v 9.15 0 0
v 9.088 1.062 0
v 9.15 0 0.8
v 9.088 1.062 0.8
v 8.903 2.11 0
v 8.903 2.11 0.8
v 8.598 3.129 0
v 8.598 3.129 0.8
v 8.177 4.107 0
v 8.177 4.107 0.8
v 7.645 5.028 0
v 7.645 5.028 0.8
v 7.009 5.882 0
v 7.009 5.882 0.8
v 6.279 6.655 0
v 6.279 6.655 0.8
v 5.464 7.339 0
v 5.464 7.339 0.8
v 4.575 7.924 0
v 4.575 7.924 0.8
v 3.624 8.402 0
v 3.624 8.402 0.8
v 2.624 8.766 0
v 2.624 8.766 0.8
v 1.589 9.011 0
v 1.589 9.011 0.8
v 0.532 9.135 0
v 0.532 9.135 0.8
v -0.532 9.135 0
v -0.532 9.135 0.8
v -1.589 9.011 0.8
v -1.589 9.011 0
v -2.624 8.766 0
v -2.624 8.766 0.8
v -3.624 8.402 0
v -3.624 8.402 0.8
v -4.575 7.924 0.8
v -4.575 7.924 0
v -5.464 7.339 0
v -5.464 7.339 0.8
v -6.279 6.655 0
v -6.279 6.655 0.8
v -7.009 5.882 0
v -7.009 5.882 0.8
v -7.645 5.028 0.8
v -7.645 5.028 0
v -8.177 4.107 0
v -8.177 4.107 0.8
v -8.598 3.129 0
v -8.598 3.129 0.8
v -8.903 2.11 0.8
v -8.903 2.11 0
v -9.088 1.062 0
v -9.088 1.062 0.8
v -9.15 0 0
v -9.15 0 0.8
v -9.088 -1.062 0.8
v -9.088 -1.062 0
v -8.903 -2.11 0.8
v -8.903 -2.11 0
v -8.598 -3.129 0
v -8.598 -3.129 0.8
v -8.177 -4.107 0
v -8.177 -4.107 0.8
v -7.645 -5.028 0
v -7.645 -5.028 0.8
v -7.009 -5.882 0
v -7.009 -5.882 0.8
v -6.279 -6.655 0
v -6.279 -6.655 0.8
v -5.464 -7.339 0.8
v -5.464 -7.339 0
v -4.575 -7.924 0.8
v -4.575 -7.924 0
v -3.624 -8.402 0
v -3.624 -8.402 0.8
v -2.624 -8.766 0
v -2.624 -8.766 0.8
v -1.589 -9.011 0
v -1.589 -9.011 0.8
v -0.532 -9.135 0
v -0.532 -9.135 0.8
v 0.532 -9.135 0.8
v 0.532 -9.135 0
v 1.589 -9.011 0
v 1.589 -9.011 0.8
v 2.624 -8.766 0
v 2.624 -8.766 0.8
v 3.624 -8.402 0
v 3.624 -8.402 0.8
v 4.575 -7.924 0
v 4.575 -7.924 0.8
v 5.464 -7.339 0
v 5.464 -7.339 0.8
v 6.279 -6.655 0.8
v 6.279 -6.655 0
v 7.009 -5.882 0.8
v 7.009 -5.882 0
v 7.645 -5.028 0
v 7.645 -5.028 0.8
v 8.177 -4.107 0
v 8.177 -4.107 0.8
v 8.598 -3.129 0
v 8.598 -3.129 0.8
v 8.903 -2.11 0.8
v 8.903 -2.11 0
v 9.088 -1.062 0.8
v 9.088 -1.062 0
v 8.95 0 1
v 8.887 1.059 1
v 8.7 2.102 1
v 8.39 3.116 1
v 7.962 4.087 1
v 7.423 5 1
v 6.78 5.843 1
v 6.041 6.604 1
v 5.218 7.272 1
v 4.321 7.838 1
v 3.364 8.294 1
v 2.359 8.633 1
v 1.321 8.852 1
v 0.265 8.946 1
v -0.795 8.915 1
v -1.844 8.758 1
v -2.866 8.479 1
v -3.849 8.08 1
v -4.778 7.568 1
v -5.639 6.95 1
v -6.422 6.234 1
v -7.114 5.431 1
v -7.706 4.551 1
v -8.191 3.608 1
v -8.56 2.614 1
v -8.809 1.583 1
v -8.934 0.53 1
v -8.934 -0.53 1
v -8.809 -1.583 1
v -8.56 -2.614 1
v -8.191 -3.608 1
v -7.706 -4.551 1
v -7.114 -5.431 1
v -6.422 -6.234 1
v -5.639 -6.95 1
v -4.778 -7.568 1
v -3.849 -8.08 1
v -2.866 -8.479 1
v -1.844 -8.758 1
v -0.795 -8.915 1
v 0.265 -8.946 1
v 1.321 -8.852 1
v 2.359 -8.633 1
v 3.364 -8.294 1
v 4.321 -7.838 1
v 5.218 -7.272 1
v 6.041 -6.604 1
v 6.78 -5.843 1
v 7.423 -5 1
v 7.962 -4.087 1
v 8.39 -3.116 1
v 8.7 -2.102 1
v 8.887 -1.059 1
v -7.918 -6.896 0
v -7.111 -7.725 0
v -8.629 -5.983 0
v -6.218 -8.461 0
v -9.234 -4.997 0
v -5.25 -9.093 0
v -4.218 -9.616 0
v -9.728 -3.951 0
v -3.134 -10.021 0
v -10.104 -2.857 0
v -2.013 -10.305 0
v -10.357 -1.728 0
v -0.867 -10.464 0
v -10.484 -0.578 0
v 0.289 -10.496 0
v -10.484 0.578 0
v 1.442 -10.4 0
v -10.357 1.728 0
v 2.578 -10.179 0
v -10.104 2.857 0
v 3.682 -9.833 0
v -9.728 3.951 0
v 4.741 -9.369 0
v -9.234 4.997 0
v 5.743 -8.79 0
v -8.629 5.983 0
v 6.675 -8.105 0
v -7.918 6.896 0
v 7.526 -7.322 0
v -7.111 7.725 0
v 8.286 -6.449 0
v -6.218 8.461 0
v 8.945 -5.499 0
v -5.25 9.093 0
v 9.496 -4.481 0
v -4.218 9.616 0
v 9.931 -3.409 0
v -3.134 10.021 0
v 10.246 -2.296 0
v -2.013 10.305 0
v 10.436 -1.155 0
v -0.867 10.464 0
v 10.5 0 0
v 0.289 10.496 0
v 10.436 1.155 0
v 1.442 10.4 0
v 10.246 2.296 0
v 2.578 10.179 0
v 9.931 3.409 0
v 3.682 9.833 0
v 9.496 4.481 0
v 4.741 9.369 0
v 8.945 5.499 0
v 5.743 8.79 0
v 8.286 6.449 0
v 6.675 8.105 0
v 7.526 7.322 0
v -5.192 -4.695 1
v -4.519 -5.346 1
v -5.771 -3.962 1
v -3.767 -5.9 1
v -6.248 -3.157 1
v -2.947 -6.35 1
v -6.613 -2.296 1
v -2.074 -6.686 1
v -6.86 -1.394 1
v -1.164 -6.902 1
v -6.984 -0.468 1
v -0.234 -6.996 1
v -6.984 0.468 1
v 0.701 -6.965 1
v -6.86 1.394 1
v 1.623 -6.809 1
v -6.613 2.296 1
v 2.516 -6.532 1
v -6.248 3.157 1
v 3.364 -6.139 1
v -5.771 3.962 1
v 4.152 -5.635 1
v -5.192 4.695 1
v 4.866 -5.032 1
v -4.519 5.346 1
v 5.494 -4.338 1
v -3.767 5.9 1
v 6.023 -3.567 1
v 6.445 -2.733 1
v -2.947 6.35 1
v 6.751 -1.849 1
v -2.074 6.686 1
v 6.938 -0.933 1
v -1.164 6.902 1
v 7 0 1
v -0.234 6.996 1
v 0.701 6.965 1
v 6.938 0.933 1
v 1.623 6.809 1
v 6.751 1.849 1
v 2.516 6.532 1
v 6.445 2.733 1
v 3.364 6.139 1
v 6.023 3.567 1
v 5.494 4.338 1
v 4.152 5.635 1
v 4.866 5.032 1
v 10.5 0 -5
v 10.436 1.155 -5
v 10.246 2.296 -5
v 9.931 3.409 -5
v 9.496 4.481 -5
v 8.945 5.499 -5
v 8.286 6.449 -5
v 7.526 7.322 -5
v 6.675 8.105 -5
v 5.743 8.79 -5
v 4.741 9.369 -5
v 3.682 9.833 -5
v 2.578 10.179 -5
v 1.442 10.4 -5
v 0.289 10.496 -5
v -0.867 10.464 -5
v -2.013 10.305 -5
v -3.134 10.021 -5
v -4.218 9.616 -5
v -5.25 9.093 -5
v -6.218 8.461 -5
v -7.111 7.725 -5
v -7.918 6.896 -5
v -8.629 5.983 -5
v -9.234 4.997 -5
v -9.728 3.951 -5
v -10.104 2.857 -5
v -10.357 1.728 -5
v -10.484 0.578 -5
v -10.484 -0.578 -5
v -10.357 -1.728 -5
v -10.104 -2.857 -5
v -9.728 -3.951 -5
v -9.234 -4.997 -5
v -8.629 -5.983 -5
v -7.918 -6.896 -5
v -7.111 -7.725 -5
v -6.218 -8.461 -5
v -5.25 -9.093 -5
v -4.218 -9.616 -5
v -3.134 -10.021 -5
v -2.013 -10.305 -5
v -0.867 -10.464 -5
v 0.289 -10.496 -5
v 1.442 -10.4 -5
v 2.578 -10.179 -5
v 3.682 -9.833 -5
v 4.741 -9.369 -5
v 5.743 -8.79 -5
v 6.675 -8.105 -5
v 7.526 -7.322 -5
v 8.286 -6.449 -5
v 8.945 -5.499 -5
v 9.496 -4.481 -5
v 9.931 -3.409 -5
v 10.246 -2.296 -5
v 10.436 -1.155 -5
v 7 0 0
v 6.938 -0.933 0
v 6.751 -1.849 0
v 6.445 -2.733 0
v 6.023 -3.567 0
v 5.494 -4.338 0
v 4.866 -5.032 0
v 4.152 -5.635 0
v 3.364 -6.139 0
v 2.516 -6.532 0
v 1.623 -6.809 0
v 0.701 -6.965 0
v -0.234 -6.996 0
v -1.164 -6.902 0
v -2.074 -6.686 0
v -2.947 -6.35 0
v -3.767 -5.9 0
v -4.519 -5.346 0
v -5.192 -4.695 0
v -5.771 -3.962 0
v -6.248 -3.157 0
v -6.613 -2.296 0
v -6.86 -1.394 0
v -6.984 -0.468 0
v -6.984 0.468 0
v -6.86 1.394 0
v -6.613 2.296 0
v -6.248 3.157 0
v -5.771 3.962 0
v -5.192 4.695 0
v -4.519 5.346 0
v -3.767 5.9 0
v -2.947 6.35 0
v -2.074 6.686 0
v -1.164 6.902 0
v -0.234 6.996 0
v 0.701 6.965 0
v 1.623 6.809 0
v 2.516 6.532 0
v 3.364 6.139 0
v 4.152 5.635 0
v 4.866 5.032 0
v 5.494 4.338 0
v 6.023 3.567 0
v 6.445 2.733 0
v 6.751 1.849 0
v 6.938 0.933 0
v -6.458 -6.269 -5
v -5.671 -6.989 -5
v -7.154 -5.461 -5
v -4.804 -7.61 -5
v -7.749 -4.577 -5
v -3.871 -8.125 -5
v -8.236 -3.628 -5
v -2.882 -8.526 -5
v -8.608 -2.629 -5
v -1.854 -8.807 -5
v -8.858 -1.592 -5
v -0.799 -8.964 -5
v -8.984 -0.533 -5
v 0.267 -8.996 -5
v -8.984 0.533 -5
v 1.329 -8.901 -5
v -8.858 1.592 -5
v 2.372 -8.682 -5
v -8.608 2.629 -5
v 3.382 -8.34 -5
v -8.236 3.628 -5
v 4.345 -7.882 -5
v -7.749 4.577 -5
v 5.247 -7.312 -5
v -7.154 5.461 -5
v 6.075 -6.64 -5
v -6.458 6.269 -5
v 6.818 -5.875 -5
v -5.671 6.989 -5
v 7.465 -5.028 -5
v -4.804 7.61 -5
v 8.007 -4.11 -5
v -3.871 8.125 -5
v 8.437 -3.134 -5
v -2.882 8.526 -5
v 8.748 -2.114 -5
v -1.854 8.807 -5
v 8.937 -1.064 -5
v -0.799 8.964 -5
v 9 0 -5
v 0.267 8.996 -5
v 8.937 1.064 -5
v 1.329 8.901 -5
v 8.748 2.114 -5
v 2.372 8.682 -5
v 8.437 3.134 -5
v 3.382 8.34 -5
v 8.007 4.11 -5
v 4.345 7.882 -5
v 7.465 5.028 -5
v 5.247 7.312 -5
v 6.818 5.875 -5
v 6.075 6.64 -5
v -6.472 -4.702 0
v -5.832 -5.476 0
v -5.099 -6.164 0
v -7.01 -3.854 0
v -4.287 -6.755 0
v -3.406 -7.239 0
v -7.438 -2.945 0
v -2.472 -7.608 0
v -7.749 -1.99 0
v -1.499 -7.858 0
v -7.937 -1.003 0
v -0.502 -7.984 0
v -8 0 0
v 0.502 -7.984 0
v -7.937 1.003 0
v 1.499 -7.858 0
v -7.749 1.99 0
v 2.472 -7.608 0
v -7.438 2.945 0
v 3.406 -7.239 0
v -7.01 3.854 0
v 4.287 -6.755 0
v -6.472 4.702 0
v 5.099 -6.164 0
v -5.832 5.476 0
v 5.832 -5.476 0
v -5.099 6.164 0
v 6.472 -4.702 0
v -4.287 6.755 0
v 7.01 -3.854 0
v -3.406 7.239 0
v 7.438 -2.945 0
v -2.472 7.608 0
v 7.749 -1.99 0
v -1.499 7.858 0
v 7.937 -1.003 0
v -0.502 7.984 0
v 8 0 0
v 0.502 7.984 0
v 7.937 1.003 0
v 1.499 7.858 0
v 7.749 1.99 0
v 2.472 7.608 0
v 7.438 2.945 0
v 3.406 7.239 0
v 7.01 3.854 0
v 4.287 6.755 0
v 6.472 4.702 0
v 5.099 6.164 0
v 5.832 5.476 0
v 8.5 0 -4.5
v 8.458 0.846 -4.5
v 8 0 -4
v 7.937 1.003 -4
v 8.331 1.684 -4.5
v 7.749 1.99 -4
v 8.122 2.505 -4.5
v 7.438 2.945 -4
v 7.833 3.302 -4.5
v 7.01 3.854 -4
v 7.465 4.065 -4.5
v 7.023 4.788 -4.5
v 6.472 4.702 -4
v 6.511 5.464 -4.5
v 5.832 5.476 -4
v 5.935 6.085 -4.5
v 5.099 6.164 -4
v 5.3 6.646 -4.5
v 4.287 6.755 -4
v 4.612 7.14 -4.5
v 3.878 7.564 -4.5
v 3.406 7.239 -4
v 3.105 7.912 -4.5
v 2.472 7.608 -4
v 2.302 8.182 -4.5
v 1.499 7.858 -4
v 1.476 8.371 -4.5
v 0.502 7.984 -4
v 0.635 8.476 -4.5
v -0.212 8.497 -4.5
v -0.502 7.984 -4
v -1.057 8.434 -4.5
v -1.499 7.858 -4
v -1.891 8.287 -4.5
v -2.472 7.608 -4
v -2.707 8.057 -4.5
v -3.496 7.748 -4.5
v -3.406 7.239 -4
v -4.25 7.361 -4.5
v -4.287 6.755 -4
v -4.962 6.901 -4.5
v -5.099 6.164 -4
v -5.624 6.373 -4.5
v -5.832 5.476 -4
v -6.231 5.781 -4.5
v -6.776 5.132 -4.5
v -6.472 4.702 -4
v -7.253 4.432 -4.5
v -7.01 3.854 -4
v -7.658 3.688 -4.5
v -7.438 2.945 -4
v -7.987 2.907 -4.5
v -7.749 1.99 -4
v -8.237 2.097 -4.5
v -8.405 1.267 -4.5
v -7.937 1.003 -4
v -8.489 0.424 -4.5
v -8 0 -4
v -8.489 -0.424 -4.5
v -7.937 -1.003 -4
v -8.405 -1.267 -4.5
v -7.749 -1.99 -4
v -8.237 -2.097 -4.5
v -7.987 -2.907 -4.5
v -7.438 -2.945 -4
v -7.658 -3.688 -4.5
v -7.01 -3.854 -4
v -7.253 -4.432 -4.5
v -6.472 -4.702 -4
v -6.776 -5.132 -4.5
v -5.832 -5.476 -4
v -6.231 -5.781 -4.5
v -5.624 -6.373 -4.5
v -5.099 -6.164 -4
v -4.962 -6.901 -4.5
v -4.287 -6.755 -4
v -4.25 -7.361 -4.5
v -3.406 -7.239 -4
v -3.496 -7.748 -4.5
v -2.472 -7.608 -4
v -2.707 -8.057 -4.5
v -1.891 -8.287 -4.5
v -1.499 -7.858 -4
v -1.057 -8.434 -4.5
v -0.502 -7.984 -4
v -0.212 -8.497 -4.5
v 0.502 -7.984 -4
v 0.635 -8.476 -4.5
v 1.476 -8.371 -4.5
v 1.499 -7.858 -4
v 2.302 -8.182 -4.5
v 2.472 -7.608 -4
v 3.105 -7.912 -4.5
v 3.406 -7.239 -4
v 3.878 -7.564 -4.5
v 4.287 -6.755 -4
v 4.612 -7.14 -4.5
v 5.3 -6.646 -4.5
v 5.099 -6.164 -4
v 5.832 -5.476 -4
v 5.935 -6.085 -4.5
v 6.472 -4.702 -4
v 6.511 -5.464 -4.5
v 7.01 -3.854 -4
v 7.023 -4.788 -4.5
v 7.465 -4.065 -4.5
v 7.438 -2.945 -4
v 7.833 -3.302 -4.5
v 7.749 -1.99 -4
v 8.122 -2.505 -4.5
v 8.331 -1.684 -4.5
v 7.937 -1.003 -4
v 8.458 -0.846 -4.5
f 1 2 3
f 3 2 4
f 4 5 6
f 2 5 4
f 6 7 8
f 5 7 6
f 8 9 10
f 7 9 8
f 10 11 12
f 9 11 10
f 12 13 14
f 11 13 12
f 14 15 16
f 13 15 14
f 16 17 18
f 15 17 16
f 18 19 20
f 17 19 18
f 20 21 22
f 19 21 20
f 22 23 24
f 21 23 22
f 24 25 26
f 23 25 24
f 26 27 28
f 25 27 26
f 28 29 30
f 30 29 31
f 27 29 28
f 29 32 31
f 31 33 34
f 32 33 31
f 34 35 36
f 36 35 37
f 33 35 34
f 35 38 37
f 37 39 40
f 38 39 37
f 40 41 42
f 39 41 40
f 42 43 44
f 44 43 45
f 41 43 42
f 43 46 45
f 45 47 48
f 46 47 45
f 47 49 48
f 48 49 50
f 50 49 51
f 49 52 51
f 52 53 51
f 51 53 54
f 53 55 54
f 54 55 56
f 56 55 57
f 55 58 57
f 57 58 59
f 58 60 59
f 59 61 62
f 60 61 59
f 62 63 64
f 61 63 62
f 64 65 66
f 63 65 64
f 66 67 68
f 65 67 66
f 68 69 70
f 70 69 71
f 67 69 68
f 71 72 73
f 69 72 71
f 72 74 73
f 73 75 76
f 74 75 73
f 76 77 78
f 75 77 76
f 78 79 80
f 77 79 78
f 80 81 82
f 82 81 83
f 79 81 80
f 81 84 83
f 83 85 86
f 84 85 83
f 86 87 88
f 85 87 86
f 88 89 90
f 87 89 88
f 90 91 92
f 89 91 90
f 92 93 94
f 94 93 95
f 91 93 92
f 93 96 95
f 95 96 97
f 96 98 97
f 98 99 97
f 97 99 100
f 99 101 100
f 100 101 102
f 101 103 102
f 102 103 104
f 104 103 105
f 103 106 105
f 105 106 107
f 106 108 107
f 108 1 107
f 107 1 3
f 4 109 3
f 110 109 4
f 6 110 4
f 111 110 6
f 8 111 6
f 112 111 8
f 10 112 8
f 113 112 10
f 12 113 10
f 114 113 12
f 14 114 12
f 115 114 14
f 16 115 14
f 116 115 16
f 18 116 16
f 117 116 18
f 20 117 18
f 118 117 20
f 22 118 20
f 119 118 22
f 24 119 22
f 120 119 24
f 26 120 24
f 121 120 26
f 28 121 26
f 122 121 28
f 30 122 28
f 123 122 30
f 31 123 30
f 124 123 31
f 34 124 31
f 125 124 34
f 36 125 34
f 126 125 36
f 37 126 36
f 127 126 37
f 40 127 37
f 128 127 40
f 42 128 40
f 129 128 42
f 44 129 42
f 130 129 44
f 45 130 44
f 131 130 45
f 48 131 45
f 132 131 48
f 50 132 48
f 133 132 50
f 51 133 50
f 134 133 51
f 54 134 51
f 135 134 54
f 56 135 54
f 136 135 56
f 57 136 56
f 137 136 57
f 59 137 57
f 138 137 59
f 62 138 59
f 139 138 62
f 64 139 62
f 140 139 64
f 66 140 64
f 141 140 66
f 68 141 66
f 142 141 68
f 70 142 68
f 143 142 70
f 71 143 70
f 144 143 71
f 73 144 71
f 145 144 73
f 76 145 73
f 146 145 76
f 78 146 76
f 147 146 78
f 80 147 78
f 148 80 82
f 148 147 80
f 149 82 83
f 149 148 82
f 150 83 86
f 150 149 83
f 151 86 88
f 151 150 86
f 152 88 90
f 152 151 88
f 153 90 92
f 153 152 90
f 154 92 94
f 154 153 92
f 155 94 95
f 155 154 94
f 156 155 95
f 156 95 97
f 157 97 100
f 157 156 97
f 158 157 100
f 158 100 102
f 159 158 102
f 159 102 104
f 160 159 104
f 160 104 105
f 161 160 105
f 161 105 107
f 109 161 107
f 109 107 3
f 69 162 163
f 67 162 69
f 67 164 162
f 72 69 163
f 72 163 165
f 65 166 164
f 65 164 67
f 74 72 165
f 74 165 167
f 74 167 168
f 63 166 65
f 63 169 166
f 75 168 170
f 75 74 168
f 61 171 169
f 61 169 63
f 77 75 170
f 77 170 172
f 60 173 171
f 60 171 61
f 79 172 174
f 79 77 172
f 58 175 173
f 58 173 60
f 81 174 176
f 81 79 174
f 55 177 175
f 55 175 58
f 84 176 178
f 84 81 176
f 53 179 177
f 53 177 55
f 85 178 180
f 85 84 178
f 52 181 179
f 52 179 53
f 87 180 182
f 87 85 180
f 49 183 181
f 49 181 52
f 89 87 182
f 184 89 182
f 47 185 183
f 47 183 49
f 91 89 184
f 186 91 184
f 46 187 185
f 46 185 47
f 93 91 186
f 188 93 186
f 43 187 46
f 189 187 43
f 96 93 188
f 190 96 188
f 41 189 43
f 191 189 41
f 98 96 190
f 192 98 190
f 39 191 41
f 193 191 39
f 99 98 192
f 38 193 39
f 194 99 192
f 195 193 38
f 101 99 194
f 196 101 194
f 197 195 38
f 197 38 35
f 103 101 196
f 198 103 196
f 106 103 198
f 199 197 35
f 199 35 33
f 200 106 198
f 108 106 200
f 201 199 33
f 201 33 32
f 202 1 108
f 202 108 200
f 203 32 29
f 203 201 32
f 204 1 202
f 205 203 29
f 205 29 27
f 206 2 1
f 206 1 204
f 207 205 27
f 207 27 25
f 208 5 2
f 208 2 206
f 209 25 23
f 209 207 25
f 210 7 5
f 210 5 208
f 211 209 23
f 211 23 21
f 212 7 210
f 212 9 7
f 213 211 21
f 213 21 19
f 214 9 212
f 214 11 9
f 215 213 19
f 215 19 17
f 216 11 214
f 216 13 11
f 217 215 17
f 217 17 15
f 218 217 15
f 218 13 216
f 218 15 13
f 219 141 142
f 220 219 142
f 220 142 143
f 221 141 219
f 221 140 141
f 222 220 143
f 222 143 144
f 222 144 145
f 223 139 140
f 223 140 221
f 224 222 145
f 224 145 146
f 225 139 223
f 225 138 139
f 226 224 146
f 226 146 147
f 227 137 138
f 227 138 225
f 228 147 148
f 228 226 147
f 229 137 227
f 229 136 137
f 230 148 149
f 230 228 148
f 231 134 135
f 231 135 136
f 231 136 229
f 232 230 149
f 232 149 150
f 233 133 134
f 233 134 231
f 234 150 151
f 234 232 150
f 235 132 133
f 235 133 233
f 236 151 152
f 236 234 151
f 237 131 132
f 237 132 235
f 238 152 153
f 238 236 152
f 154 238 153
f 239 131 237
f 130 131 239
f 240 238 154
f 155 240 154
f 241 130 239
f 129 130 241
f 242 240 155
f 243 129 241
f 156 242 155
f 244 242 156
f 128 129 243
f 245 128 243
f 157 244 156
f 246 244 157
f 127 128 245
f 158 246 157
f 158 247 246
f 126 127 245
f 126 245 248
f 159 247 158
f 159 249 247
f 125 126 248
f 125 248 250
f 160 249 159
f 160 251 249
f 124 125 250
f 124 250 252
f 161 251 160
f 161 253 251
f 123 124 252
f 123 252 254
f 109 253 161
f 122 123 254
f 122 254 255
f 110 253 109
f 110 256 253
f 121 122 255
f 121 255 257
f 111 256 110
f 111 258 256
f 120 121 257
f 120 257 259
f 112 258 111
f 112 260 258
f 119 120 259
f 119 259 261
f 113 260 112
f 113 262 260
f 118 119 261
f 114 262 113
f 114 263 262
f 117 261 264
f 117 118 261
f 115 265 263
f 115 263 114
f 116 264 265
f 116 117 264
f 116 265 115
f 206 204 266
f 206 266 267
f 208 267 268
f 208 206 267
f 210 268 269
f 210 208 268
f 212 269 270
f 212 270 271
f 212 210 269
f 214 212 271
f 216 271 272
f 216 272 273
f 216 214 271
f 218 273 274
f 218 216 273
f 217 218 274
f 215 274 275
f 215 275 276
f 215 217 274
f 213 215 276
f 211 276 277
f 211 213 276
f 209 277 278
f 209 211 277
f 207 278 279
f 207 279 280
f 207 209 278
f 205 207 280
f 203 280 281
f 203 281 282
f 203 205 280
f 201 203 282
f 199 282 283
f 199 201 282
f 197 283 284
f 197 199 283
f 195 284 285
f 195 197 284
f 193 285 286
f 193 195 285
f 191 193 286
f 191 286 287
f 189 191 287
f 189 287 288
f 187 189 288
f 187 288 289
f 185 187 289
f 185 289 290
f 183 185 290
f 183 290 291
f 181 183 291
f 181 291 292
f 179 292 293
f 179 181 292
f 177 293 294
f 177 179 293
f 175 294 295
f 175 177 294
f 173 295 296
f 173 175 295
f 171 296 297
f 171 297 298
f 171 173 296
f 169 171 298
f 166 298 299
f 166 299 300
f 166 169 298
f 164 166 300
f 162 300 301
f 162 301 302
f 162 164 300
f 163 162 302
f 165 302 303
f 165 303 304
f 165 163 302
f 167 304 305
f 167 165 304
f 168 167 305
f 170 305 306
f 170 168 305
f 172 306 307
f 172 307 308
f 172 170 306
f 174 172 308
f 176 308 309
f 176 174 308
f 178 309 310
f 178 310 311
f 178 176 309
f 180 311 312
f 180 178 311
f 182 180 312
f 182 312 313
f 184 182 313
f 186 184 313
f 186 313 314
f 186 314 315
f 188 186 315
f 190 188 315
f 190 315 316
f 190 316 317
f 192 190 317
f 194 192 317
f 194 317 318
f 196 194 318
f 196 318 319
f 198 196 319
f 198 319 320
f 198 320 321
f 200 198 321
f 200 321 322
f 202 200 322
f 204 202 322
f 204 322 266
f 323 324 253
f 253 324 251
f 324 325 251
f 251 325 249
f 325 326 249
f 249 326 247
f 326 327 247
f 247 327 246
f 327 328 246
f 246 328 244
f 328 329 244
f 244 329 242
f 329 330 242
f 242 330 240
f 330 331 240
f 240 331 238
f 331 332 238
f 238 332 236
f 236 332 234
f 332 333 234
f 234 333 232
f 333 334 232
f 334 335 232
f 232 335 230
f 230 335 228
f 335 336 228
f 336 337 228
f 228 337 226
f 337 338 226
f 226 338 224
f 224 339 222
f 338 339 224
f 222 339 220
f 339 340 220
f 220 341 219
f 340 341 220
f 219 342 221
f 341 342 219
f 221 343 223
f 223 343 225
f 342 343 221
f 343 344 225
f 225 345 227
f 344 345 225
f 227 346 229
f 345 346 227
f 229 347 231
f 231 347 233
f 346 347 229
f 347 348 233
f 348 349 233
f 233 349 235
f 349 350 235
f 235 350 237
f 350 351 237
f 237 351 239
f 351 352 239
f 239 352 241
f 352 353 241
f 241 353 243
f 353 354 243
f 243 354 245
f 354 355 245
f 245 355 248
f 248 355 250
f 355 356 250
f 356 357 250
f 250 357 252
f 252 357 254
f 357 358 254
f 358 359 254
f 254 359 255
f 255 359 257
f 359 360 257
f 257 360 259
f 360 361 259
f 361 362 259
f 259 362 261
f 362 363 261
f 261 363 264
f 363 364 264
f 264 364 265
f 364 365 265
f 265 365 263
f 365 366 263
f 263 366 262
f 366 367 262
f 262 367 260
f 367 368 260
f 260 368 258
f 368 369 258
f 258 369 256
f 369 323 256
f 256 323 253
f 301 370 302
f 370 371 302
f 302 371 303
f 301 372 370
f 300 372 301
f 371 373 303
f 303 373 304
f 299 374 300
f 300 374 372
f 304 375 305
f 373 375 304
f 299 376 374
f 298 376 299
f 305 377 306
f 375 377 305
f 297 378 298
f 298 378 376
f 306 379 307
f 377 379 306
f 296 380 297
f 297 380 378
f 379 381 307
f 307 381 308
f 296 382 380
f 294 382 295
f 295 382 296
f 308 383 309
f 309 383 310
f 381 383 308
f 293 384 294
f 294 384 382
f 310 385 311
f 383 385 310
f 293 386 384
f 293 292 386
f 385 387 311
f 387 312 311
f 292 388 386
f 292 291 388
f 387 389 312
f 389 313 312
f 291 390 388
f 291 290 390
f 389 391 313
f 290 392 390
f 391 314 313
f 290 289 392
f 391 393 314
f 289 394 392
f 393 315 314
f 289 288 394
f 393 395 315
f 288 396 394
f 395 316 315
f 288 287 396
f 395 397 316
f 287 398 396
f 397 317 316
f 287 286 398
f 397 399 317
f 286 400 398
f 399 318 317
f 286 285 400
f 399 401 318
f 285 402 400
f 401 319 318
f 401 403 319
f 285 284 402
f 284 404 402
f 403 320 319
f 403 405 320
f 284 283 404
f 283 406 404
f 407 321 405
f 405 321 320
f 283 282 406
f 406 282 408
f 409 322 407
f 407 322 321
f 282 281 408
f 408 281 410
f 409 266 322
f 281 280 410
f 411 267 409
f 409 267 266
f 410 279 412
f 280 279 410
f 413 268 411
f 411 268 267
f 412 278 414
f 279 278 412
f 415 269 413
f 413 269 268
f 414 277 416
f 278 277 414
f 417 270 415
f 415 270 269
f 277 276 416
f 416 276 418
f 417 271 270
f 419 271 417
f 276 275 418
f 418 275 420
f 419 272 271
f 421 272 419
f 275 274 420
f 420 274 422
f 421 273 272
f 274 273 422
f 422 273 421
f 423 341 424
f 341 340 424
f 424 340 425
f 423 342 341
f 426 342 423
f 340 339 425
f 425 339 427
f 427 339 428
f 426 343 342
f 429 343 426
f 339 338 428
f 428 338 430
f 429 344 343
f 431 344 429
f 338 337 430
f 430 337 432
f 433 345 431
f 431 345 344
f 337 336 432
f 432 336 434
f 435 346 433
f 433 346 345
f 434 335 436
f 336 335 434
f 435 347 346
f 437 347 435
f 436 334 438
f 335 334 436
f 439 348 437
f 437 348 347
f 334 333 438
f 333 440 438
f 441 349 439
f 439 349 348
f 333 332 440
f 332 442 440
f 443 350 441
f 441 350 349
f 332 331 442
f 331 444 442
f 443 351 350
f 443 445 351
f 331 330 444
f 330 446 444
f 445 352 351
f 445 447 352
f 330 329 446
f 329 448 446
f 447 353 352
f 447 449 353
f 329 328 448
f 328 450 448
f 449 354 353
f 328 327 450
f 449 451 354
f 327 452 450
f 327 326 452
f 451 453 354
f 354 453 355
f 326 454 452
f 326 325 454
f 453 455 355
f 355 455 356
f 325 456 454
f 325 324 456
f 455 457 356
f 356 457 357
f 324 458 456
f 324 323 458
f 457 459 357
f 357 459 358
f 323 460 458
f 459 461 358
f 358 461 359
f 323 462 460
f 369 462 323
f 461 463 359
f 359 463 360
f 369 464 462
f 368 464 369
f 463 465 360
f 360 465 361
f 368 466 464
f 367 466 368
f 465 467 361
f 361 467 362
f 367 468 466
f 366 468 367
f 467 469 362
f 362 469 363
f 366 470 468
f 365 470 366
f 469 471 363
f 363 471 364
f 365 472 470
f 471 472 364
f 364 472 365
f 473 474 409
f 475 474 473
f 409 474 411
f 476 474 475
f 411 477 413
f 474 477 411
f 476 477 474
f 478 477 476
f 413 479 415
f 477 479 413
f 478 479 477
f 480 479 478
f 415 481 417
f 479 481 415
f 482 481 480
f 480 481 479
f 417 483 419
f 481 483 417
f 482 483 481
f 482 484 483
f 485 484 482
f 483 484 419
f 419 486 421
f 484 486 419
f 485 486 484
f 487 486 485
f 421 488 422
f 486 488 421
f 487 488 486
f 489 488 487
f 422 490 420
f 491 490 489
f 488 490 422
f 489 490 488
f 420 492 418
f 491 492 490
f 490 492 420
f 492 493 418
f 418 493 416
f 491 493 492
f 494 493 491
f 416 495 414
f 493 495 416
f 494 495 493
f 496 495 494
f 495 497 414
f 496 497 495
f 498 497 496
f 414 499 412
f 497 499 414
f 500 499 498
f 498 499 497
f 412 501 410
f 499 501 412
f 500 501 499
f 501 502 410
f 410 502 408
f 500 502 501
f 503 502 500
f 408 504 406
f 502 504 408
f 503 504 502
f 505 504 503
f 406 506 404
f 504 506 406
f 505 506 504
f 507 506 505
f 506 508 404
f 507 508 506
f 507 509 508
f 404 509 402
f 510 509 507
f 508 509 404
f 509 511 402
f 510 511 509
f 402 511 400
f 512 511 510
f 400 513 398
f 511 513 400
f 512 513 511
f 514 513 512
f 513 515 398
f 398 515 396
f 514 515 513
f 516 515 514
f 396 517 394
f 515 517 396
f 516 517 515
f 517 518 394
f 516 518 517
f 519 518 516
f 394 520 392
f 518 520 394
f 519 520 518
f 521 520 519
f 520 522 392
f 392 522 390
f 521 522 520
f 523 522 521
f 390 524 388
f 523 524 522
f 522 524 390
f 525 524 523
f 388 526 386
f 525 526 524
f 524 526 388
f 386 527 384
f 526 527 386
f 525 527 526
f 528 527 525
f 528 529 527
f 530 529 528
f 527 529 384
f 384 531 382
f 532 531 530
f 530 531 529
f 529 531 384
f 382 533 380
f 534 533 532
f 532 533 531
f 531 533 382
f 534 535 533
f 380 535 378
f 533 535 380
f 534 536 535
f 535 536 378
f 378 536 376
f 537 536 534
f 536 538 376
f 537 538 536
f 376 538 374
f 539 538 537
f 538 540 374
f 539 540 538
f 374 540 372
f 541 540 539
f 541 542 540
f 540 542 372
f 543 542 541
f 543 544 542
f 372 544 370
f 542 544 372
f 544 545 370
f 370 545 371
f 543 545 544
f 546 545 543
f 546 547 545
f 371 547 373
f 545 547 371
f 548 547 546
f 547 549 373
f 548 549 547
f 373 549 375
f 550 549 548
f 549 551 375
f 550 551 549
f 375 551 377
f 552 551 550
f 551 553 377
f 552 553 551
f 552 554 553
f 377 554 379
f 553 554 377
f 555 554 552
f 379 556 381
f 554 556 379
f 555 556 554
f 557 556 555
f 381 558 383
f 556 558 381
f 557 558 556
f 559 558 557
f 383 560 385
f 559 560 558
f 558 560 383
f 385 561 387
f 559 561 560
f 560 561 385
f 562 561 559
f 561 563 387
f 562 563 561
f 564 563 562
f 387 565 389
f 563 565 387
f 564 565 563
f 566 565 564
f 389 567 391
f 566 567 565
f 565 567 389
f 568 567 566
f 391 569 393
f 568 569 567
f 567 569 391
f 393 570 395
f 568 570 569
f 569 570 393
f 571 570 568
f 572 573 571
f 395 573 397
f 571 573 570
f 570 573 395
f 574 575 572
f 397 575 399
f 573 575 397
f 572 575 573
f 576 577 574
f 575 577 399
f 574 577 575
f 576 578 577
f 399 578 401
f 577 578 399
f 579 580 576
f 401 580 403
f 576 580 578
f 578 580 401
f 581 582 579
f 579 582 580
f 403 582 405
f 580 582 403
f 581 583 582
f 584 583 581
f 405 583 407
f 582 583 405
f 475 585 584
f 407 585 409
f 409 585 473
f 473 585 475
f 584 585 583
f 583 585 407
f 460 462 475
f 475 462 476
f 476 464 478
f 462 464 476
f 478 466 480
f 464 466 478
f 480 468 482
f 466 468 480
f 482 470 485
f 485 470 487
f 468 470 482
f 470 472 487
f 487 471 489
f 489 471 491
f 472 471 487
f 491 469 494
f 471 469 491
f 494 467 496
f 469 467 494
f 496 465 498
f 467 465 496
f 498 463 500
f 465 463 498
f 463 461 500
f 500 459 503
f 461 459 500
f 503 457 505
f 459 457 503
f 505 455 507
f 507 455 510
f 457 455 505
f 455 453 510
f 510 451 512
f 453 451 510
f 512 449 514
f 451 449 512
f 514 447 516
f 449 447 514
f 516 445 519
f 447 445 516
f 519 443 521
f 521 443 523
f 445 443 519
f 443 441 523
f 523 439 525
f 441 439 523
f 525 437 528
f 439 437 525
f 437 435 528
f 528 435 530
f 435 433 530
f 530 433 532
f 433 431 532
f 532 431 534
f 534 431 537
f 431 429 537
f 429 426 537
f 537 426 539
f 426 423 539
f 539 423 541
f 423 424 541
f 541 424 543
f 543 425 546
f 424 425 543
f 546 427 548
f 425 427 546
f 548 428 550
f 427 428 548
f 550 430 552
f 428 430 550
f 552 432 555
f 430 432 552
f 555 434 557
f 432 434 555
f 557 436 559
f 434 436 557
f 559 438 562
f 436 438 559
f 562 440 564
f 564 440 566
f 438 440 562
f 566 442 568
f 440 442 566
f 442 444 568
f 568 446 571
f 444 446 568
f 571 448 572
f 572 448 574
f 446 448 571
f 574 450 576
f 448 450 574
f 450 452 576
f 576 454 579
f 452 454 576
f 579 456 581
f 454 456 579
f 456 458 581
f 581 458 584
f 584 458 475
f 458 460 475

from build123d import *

# Parameters (mm, degrees)
SKETCH_R        = 9.15
PAD_DEPTH       = 1
SKETCH001_R     = 10.5
SKETCH001_R_2   = 8
PAD001_DEPTH    = 5
SKETCH002_R     = 7
POCKET_DEPTH    = 1.001
CHAMFER_SIZE    = 1
CHAMFER001_SIZE = 0.2


with BuildPart() as part:
    # Sketch → Pad (new body)
    with BuildSketch(Plane.XY):
        Circle(SKETCH_R)
    extrude(amount=PAD_DEPTH)

    # Sketch001 → Pad001 (join)
    with BuildSketch(Plane.XY):
        Circle(SKETCH001_R)
        Circle(SKETCH001_R_2, mode=Mode.SUBTRACT)
    extrude(amount=-PAD001_DEPTH)

    # Sketch002 (on Face7 of Pad001) → Pocket (cut, through all)
    with BuildSketch(Plane(origin=(0, 0, 0), x_dir=(1, 0, 0), z_dir=(0, 0, -1))):
        Circle(SKETCH002_R)
    extrude(amount=-POCKET_DEPTH, mode=Mode.SUBTRACT)

    # Chamfer
    chamfer_edges = [part.edges().sort_by_distance(p)[0] for p in [
        (-8, 0, -5),
    ]]
    chamfer(chamfer_edges, length=CHAMFER_SIZE)

    # Chamfer001
    chamfer001_edges = [part.edges().sort_by_distance(p)[0] for p in [
        (-9.15, 0, 1),
    ]]
    chamfer(chamfer001_edges, length=CHAMFER001_SIZE)


solid = part.part
